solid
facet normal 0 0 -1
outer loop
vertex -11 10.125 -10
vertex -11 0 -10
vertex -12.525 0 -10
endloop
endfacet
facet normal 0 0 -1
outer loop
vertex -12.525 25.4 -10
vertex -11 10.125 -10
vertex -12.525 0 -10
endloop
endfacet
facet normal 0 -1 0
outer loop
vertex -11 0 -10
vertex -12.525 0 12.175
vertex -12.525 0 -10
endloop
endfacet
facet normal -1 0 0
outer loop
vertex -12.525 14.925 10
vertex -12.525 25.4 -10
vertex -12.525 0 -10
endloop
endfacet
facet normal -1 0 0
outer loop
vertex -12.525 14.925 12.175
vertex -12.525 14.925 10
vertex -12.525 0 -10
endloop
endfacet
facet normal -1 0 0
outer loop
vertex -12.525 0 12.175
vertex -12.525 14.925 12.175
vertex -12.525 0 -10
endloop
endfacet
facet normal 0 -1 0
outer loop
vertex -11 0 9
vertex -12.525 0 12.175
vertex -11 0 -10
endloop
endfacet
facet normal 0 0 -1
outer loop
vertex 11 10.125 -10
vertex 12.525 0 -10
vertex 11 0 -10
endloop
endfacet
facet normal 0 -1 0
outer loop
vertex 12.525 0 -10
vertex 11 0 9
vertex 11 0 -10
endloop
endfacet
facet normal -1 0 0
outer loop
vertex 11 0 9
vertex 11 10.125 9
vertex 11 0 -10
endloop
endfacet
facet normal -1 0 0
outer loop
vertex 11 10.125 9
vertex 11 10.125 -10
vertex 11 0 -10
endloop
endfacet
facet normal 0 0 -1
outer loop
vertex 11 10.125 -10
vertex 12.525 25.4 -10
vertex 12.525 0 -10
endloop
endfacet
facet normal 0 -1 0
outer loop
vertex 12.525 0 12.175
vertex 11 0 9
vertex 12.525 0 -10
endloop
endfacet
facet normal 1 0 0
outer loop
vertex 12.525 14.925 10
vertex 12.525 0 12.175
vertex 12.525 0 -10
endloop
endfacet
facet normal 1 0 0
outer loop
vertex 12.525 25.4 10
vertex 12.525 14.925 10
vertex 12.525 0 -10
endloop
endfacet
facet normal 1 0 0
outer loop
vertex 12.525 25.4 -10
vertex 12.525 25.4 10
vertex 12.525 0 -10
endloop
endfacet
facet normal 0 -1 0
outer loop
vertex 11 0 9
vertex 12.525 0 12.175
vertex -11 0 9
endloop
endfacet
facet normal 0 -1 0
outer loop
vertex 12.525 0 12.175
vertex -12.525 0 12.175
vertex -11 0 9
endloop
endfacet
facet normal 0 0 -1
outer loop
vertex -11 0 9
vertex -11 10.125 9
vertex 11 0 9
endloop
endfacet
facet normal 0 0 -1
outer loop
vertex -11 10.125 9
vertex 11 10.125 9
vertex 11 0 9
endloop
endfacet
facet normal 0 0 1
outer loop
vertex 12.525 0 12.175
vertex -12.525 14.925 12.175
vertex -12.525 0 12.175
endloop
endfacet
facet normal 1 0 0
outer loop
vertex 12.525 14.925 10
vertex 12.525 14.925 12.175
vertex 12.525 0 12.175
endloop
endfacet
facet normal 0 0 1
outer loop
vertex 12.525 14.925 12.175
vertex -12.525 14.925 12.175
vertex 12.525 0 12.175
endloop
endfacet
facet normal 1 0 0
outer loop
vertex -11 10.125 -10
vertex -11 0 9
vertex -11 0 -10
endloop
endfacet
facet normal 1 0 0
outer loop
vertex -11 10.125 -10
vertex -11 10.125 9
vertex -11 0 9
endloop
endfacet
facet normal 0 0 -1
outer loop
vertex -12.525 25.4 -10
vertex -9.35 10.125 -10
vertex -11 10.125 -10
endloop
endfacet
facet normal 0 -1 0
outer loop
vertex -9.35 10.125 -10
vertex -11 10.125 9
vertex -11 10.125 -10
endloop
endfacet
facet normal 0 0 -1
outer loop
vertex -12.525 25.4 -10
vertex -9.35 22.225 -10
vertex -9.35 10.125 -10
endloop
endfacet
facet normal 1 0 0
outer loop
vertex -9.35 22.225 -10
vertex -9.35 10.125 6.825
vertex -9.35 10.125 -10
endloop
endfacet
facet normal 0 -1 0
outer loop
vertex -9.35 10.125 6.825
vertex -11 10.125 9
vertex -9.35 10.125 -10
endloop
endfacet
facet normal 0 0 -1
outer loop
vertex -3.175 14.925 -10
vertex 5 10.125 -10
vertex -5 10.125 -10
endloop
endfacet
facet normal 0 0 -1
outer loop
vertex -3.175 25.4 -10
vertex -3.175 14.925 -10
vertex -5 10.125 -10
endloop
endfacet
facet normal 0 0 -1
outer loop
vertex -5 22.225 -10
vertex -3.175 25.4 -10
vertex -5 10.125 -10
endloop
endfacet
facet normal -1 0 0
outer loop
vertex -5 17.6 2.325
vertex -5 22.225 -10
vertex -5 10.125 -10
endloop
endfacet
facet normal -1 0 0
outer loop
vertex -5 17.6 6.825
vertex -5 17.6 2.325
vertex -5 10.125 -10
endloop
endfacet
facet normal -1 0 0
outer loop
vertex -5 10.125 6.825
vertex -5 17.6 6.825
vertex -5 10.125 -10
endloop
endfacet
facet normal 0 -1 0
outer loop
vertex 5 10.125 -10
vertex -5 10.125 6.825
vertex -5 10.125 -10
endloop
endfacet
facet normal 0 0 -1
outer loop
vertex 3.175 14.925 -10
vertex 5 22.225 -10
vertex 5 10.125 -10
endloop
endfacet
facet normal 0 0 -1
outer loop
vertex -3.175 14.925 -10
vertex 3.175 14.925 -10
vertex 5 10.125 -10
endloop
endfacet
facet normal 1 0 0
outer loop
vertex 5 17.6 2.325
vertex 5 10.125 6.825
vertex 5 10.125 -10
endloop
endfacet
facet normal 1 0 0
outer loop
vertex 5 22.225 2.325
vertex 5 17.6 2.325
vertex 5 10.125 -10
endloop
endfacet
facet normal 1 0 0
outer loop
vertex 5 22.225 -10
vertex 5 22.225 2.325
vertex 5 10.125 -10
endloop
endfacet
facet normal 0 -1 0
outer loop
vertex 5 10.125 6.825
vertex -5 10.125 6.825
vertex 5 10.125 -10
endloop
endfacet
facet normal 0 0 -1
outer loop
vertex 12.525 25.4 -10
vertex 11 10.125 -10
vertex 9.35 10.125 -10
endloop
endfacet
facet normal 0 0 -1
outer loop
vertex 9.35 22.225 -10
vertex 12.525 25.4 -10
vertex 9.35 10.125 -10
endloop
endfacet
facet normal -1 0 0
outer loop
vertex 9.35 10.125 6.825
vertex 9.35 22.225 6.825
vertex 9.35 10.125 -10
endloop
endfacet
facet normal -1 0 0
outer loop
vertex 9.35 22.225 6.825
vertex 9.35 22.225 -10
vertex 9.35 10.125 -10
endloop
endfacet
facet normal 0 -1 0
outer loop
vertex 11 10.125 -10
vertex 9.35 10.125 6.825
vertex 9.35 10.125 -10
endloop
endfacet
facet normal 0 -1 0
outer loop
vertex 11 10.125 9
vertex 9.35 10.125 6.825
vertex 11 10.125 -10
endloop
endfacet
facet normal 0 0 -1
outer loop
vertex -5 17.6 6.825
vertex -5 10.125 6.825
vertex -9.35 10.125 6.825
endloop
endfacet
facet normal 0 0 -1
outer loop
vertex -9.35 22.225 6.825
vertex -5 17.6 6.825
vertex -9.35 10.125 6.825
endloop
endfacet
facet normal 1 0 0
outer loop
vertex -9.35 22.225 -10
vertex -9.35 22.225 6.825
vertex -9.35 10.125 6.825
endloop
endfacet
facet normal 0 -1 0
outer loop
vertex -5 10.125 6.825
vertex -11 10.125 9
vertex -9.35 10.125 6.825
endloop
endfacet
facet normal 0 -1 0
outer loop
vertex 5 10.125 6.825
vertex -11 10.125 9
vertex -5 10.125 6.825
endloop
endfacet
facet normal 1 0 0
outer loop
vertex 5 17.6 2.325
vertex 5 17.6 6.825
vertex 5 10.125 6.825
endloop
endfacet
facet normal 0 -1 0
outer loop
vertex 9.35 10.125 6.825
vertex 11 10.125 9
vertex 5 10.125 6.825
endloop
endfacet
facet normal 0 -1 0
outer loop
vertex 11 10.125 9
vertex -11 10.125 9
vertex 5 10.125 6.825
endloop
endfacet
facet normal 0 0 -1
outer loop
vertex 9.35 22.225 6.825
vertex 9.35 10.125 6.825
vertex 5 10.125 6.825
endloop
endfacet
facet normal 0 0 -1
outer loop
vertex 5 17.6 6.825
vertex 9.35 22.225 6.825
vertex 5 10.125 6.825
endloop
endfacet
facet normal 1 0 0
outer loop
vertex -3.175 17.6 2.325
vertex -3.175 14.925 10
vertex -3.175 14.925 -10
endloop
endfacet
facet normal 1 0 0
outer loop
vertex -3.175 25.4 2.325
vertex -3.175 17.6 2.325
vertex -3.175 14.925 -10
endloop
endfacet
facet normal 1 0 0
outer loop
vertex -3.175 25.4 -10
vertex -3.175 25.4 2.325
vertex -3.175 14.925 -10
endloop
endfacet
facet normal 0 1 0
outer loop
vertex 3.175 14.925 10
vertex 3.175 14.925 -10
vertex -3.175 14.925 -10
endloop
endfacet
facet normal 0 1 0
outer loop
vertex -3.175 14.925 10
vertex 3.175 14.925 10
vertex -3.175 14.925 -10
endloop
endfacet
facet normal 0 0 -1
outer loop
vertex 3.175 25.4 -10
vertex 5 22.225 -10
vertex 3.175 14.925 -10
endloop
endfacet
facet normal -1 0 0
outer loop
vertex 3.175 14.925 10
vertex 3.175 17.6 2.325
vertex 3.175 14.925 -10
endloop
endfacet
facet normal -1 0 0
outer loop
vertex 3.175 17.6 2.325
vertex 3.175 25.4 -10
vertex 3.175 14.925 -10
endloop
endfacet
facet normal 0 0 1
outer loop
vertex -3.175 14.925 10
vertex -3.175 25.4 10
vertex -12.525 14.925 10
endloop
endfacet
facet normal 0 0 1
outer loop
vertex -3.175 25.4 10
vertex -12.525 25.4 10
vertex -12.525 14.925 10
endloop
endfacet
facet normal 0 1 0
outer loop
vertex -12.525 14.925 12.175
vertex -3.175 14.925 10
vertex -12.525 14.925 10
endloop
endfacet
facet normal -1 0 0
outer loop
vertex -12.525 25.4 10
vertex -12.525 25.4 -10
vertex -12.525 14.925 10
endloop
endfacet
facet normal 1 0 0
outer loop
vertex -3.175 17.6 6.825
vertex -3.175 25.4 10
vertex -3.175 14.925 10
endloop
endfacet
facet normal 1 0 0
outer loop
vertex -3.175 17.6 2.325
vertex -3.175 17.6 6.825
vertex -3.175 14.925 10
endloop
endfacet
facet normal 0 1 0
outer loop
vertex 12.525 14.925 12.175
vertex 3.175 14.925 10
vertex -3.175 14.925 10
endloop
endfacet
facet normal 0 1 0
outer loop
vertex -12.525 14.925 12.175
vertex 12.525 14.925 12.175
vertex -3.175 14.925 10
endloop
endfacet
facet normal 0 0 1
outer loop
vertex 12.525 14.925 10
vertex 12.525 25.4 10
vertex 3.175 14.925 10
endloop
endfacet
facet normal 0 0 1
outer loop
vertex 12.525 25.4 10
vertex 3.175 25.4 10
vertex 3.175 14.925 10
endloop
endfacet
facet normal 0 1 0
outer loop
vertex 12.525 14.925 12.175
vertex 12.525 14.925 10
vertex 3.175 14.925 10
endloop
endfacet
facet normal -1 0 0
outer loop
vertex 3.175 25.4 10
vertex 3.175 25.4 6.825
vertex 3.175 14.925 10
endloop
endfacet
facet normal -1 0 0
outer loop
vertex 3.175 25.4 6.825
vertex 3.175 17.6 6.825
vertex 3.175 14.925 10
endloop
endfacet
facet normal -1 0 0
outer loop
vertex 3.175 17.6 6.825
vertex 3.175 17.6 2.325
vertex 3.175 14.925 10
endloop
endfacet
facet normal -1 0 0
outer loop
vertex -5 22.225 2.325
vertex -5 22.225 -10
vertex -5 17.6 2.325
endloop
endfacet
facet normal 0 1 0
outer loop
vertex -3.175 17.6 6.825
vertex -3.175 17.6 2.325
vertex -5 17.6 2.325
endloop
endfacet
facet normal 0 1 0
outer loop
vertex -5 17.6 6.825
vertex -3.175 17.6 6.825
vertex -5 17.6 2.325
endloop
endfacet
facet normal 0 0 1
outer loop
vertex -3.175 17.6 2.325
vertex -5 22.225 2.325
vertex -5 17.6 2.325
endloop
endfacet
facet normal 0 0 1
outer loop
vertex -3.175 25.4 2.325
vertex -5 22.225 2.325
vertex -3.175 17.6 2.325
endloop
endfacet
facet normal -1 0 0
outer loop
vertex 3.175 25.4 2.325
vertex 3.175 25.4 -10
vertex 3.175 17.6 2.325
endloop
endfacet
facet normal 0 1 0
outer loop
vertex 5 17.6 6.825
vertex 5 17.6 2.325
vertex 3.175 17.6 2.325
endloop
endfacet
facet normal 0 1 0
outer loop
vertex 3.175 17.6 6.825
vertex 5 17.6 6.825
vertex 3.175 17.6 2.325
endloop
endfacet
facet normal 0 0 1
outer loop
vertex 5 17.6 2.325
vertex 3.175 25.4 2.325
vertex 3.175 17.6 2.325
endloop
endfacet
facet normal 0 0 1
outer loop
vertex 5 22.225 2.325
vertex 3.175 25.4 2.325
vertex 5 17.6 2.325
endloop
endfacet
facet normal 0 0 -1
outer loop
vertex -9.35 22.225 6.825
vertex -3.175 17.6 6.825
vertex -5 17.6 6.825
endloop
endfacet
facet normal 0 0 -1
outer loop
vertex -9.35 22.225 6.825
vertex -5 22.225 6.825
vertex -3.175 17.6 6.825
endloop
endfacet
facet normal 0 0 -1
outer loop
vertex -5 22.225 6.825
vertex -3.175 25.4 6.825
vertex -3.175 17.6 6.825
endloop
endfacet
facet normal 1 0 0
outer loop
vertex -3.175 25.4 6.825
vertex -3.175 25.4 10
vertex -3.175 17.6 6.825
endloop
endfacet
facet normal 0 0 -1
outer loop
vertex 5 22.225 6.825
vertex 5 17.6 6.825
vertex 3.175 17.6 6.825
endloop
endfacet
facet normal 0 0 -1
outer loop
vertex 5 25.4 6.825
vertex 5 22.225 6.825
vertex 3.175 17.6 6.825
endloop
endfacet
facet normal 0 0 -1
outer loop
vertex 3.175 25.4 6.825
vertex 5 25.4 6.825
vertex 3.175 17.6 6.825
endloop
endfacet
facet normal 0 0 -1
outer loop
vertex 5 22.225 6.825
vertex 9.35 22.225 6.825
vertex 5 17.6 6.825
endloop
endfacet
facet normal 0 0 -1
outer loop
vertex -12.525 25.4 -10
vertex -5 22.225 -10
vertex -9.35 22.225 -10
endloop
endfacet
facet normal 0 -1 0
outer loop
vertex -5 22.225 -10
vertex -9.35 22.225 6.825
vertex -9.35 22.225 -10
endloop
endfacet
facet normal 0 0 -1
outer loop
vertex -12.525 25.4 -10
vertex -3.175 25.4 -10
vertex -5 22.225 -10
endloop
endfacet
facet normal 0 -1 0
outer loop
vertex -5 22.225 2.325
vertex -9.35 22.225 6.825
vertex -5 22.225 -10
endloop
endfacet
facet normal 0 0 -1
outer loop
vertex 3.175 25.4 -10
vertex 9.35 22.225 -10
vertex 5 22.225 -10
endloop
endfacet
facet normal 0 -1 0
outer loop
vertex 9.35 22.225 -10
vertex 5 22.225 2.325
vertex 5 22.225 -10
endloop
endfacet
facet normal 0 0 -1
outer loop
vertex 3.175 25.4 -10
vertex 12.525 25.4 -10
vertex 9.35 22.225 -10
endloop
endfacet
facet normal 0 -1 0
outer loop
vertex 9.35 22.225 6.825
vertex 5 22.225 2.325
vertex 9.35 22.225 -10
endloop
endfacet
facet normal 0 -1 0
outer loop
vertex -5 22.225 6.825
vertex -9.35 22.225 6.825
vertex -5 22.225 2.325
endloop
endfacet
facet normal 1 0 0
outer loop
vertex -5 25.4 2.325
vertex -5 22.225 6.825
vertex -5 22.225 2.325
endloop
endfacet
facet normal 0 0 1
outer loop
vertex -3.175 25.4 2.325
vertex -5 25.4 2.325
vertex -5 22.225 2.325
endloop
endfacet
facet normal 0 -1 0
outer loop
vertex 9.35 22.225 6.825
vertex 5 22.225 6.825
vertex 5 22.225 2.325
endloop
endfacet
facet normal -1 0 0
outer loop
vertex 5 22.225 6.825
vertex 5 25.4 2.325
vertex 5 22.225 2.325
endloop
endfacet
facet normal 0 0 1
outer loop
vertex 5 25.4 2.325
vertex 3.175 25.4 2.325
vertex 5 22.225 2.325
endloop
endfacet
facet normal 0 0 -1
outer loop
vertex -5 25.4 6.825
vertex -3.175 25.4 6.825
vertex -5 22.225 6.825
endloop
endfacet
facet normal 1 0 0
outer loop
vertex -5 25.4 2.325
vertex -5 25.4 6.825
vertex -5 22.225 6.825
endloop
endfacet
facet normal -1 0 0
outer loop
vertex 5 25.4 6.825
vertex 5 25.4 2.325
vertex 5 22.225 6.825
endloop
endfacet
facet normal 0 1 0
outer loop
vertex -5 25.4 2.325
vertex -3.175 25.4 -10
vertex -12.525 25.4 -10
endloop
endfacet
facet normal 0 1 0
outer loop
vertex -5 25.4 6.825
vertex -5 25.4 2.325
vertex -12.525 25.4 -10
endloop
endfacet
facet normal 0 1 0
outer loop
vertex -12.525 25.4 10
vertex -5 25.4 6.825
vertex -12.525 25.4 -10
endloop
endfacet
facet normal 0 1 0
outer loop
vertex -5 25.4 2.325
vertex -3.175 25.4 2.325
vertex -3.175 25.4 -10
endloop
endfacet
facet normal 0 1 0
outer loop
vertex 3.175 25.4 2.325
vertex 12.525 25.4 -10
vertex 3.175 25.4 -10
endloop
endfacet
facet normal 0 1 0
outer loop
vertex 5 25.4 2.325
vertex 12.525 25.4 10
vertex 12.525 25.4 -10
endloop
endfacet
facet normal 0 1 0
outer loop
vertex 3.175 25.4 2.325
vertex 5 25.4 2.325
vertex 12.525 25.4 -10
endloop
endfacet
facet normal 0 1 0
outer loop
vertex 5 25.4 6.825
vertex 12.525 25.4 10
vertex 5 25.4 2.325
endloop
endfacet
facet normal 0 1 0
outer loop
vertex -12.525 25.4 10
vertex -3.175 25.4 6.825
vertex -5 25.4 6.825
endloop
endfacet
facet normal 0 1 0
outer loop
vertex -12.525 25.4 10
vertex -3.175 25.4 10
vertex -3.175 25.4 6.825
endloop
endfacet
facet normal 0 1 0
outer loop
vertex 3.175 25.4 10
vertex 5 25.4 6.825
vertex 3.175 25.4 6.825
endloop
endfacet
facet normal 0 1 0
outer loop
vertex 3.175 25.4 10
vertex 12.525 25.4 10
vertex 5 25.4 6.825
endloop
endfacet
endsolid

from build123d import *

# Parameters (mm, degrees)
SKETCH2_W           = 18.7
SKETCH2_H           = 20
BOSS_EXTRUDE1_DEPTH = 25.4
SKETCH3_W           = 6.35
SKETCH3_H           = 7.3
SKETCH3_H_2         = 3.175
CUT_EXTRUDE1_DEPTH  = 21
SKETCH5_W           = 3.175
SKETCH5_H           = 25.4
BOSS_EXTRUDE2_DEPTH = 20
SKETCH6_W           = 10
SKETCH6_H           = 10.125
CUT_EXTRUDE2_DEPTH  = 16.825
SKETCH7_W           = 3
SKETCH7_H           = 3.5
CUT_EXTRUDE3_DEPTH  = 10
SKETCH8_W           = 22
SKETCH8_H           = 10.125
CUT_EXTRUDE4_DEPTH  = 19
SKETCH9_W           = 2.175
SKETCH9_H           = 14.925
BOSS_EXTRUDE3_DEPTH = 25.05
SKETCH10_W          = 1.825
SKETCH10_H          = 7.8
CUT_EXTRUDE5_DEPTH  = 4.5


with BuildPart() as part:
    # Sketch2 → Boss-Extrude1 (new body)
    with BuildSketch(Plane(origin=(0, 0, 0), x_dir=(1, 0, 0), z_dir=(0, 1, 0))):
        Rectangle(SKETCH2_W, SKETCH2_H)
    extrude(amount=BOSS_EXTRUDE1_DEPTH)

    # Sketch3 → Cut-Extrude1 (cut, through all)
    with BuildSketch(Plane(origin=(0, 0, -10), x_dir=(-1, 0, 0), z_dir=(0, 0, -1))):
        with Locations((0, 21.75)):
            Rectangle(SKETCH3_W, SKETCH3_H)
        with Locations((0, 16.5125)):
            Rectangle(SKETCH3_W, SKETCH3_H_2)
    extrude(amount=-CUT_EXTRUDE1_DEPTH, mode=Mode.SUBTRACT)

    # Sketch5 → Boss-Extrude2 (add)
    with BuildSketch(Plane(origin=(0, 0, -10), x_dir=(-1, 0, 0), z_dir=(0, 0, -1))):
        with Locations((-10.9375, 12.7)):
            Rectangle(SKETCH5_W, SKETCH5_H)
        with Locations((10.9375, 12.7)):
            Rectangle(SKETCH5_W, SKETCH5_H)
    extrude(amount=-BOSS_EXTRUDE2_DEPTH)

    # Sketch6 → Cut-Extrude2 (cut)
    with BuildSketch(Plane(origin=(0, 0, -10), x_dir=(-1, 0, 0), z_dir=(0, 0, -1))):
        Polygon((5, 22.225), (5, 10.125), (5, 0), (9.35, 0), (9.35, 22.225), align=None)
        with Locations((0, 5.0625)):
            Rectangle(SKETCH6_W, SKETCH6_H)
        Polygon((-5, 22.225), (-9.35, 22.225), (-9.35, 0), (-5, 0), (-5, 10.125), align=None)
    extrude(amount=-CUT_EXTRUDE2_DEPTH, mode=Mode.SUBTRACT)

    # Sketch7 → Cut-Extrude3 (cut)
    with BuildSketch(Plane(origin=(5, 0, 0), x_dir=(0, 0, -1), z_dir=(1, 0, 0))):
        with Locations((-4.825, 19.725)):
            Rectangle(SKETCH7_W, SKETCH7_H)
    extrude(amount=-CUT_EXTRUDE3_DEPTH, mode=Mode.SUBTRACT)

    # Sketch8 → Cut-Extrude4 (cut)
    with BuildSketch(Plane(origin=(0, 0, -10), x_dir=(-1, 0, 0), z_dir=(0, 0, -1))):
        with Locations((0, 5.0625)):
            Rectangle(SKETCH8_W, SKETCH8_H)
    extrude(amount=-CUT_EXTRUDE4_DEPTH, mode=Mode.SUBTRACT)

    # Sketch9 → Boss-Extrude3 (add)
    with BuildSketch(Plane(origin=(12.525, 0, 0), x_dir=(0, 0, -1), z_dir=(1, 0, 0))):
        with Locations((-11.0875, 7.4625)):
            Rectangle(SKETCH9_W, SKETCH9_H)
    extrude(amount=-BOSS_EXTRUDE3_DEPTH)

    # Sketch10 → Cut-Extrude5 (cut)
    with BuildSketch(Plane(origin=(0, 0, 2.325), x_dir=(-1, 0, 0), z_dir=(0, 0, -1))):
        with Locations((-4.0875, 21.5)):
            Rectangle(SKETCH10_W, SKETCH10_H)
        with Locations((4.0875, 21.5)):
            Rectangle(SKETCH10_W, SKETCH10_H)
    extrude(amount=-CUT_EXTRUDE5_DEPTH, mode=Mode.SUBTRACT)


solid = part.part
